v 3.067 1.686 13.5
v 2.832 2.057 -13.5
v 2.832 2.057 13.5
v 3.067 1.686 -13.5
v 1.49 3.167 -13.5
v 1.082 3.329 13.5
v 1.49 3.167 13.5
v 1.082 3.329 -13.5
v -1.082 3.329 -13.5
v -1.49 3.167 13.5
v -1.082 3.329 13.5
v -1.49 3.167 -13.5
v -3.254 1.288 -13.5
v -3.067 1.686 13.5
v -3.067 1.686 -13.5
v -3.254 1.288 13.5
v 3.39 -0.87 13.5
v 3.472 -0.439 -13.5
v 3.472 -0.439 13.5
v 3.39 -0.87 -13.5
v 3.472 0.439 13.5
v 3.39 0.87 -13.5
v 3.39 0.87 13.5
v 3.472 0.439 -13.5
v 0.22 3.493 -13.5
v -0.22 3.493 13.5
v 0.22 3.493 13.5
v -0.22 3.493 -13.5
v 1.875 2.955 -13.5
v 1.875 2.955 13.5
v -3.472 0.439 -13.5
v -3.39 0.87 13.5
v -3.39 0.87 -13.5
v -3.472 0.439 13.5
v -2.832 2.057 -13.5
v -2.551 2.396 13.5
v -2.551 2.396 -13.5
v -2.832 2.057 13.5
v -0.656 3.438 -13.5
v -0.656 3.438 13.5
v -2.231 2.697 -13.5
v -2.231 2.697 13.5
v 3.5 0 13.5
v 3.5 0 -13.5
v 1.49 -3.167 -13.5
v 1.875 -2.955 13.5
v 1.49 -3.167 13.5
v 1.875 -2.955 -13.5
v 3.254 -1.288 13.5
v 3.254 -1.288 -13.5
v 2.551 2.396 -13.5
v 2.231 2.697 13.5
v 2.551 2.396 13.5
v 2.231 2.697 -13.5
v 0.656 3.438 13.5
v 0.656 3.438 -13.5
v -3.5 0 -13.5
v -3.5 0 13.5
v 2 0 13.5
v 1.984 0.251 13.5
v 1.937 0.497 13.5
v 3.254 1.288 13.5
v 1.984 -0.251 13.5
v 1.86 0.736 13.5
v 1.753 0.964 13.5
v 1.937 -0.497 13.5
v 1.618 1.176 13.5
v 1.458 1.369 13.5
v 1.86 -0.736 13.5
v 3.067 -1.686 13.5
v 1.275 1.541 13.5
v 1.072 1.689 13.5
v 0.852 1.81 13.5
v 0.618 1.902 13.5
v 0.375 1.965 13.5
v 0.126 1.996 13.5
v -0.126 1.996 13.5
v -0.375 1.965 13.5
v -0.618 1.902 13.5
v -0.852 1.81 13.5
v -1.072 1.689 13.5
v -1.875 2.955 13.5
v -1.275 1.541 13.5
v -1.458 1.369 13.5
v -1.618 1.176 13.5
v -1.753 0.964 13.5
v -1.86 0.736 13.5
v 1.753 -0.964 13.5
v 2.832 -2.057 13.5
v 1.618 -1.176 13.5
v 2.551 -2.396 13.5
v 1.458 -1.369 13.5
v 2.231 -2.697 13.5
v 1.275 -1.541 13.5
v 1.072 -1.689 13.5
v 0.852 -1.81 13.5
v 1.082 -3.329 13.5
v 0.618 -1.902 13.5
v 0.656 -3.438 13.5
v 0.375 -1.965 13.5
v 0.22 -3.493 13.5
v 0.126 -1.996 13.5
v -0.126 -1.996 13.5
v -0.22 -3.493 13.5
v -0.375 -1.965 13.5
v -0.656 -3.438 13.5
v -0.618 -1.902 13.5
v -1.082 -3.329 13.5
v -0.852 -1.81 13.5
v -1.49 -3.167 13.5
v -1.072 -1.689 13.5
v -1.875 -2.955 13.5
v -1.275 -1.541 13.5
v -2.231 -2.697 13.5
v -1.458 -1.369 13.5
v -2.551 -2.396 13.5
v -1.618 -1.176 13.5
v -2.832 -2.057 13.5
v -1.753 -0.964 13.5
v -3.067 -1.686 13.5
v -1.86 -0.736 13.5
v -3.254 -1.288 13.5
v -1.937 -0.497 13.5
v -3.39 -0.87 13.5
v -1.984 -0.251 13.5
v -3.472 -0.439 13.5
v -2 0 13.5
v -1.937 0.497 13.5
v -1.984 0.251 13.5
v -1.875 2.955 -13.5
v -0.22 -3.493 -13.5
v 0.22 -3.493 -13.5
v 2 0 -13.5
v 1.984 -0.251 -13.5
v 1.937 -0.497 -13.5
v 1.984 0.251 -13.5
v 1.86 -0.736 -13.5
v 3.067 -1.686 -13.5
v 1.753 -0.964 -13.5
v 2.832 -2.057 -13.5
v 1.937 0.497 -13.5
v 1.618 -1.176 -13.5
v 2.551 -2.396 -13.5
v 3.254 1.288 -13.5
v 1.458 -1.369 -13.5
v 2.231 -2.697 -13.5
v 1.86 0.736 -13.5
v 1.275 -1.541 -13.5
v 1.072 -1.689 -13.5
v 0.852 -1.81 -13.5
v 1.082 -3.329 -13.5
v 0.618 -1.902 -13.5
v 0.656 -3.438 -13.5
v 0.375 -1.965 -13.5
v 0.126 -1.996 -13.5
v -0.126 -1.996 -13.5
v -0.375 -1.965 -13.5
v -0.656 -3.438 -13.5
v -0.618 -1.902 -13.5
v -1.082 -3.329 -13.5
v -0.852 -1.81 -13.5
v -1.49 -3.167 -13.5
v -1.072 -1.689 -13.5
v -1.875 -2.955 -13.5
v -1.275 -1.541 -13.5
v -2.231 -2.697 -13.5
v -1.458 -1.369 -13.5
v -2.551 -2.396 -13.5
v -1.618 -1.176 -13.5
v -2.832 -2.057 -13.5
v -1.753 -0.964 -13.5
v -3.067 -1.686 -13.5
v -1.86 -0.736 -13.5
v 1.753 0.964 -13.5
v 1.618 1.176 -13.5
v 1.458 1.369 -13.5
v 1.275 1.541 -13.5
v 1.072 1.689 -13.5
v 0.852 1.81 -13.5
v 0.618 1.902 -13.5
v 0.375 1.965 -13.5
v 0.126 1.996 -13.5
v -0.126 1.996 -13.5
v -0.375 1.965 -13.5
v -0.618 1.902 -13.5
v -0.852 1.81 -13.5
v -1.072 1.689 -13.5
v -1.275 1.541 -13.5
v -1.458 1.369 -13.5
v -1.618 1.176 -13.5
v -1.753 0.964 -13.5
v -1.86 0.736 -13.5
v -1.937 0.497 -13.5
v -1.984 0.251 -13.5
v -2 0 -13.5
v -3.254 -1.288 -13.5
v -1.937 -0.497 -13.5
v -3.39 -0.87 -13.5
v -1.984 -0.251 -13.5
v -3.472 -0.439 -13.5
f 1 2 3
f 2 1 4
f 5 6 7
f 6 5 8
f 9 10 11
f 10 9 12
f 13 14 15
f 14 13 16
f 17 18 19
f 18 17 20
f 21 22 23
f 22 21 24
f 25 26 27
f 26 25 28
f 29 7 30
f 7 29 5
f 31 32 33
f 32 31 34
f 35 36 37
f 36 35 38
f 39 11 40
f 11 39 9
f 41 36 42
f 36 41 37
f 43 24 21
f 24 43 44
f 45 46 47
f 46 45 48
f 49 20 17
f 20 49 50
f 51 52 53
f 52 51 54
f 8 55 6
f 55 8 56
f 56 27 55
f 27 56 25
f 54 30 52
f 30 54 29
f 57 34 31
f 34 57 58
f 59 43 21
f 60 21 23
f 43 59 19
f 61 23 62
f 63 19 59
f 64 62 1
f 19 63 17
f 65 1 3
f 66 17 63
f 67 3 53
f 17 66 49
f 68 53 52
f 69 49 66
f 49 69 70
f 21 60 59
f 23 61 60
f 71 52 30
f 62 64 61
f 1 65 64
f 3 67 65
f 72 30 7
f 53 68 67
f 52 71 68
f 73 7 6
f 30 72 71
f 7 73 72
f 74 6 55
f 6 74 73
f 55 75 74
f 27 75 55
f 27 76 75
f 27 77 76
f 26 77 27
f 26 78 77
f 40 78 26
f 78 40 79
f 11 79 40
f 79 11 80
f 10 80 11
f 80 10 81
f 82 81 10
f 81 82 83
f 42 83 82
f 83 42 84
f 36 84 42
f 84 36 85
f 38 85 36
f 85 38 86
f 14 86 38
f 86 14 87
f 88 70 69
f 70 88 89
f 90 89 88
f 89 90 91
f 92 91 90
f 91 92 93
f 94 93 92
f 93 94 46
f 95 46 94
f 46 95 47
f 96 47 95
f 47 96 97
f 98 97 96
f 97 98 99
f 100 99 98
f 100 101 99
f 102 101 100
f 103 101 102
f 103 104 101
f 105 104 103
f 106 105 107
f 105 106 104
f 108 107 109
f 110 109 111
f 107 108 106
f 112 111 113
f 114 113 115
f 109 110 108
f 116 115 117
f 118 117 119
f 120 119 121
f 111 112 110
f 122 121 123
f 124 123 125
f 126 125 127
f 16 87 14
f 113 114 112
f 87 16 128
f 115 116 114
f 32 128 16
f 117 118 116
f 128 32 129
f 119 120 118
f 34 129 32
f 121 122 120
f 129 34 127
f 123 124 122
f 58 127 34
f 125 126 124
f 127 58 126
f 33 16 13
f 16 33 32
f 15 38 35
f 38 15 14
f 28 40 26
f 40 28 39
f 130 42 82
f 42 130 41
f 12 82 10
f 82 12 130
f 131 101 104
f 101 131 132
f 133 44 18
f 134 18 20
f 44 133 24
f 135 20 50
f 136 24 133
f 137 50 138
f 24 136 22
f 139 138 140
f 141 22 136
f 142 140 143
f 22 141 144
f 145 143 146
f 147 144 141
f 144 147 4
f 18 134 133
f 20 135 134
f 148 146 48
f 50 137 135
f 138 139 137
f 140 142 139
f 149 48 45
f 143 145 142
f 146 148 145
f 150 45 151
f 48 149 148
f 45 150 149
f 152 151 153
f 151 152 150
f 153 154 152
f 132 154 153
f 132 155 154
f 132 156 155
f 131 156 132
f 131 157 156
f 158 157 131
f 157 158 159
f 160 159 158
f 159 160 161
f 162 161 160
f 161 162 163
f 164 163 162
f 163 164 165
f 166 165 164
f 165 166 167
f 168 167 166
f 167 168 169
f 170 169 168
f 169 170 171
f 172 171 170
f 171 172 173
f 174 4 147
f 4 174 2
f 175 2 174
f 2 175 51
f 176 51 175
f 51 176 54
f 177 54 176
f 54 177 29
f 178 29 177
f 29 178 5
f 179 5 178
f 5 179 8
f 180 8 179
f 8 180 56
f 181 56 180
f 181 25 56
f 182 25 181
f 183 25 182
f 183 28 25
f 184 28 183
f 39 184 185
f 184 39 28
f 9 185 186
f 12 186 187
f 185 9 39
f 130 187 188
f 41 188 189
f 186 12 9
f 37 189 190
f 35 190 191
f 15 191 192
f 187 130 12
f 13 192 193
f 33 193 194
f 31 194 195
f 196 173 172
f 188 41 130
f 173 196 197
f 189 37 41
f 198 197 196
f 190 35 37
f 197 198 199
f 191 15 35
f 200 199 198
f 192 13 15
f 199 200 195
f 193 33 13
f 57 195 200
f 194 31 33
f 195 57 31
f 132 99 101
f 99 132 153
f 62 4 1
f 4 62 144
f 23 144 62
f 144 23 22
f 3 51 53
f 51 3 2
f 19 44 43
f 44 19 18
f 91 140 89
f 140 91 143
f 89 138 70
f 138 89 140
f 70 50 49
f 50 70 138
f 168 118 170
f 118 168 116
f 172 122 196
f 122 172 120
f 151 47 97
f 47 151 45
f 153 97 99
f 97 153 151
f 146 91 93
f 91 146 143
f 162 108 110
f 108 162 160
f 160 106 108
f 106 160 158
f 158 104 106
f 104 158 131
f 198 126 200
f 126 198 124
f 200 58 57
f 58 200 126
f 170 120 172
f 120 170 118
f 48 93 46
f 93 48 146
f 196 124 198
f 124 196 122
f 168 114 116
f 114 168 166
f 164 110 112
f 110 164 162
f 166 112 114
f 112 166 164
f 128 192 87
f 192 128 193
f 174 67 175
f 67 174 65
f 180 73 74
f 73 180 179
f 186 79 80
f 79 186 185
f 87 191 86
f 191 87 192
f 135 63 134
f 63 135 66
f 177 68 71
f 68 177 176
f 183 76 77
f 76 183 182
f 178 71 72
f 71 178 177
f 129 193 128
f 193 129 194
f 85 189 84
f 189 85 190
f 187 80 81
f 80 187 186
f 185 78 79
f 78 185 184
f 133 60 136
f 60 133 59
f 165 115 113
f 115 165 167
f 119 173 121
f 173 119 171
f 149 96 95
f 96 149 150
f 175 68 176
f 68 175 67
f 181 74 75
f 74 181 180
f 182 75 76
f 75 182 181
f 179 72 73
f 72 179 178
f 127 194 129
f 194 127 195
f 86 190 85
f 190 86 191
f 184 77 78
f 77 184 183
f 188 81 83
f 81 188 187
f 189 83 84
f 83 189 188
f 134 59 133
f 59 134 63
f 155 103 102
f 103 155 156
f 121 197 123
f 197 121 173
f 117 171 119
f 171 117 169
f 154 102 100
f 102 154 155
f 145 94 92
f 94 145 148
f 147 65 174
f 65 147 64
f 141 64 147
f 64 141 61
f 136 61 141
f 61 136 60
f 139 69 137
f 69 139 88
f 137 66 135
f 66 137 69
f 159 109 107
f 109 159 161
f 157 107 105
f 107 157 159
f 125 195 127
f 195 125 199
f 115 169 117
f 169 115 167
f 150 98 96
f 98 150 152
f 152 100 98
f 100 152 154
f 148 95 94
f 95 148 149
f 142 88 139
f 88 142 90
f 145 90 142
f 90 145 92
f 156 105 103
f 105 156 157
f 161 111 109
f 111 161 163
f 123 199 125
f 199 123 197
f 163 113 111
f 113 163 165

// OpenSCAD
$fn = 50;


difference() {
	union() {
		translate(v = [0, 0, -13.5000000000]) {
			cylinder(h = 27, r = 3.5000000000);
		}
	}
	union() {
		translate(v = [0, 0, -100.0000000000]) {
			cylinder(h = 200, r = 2);
		}
	}
}
